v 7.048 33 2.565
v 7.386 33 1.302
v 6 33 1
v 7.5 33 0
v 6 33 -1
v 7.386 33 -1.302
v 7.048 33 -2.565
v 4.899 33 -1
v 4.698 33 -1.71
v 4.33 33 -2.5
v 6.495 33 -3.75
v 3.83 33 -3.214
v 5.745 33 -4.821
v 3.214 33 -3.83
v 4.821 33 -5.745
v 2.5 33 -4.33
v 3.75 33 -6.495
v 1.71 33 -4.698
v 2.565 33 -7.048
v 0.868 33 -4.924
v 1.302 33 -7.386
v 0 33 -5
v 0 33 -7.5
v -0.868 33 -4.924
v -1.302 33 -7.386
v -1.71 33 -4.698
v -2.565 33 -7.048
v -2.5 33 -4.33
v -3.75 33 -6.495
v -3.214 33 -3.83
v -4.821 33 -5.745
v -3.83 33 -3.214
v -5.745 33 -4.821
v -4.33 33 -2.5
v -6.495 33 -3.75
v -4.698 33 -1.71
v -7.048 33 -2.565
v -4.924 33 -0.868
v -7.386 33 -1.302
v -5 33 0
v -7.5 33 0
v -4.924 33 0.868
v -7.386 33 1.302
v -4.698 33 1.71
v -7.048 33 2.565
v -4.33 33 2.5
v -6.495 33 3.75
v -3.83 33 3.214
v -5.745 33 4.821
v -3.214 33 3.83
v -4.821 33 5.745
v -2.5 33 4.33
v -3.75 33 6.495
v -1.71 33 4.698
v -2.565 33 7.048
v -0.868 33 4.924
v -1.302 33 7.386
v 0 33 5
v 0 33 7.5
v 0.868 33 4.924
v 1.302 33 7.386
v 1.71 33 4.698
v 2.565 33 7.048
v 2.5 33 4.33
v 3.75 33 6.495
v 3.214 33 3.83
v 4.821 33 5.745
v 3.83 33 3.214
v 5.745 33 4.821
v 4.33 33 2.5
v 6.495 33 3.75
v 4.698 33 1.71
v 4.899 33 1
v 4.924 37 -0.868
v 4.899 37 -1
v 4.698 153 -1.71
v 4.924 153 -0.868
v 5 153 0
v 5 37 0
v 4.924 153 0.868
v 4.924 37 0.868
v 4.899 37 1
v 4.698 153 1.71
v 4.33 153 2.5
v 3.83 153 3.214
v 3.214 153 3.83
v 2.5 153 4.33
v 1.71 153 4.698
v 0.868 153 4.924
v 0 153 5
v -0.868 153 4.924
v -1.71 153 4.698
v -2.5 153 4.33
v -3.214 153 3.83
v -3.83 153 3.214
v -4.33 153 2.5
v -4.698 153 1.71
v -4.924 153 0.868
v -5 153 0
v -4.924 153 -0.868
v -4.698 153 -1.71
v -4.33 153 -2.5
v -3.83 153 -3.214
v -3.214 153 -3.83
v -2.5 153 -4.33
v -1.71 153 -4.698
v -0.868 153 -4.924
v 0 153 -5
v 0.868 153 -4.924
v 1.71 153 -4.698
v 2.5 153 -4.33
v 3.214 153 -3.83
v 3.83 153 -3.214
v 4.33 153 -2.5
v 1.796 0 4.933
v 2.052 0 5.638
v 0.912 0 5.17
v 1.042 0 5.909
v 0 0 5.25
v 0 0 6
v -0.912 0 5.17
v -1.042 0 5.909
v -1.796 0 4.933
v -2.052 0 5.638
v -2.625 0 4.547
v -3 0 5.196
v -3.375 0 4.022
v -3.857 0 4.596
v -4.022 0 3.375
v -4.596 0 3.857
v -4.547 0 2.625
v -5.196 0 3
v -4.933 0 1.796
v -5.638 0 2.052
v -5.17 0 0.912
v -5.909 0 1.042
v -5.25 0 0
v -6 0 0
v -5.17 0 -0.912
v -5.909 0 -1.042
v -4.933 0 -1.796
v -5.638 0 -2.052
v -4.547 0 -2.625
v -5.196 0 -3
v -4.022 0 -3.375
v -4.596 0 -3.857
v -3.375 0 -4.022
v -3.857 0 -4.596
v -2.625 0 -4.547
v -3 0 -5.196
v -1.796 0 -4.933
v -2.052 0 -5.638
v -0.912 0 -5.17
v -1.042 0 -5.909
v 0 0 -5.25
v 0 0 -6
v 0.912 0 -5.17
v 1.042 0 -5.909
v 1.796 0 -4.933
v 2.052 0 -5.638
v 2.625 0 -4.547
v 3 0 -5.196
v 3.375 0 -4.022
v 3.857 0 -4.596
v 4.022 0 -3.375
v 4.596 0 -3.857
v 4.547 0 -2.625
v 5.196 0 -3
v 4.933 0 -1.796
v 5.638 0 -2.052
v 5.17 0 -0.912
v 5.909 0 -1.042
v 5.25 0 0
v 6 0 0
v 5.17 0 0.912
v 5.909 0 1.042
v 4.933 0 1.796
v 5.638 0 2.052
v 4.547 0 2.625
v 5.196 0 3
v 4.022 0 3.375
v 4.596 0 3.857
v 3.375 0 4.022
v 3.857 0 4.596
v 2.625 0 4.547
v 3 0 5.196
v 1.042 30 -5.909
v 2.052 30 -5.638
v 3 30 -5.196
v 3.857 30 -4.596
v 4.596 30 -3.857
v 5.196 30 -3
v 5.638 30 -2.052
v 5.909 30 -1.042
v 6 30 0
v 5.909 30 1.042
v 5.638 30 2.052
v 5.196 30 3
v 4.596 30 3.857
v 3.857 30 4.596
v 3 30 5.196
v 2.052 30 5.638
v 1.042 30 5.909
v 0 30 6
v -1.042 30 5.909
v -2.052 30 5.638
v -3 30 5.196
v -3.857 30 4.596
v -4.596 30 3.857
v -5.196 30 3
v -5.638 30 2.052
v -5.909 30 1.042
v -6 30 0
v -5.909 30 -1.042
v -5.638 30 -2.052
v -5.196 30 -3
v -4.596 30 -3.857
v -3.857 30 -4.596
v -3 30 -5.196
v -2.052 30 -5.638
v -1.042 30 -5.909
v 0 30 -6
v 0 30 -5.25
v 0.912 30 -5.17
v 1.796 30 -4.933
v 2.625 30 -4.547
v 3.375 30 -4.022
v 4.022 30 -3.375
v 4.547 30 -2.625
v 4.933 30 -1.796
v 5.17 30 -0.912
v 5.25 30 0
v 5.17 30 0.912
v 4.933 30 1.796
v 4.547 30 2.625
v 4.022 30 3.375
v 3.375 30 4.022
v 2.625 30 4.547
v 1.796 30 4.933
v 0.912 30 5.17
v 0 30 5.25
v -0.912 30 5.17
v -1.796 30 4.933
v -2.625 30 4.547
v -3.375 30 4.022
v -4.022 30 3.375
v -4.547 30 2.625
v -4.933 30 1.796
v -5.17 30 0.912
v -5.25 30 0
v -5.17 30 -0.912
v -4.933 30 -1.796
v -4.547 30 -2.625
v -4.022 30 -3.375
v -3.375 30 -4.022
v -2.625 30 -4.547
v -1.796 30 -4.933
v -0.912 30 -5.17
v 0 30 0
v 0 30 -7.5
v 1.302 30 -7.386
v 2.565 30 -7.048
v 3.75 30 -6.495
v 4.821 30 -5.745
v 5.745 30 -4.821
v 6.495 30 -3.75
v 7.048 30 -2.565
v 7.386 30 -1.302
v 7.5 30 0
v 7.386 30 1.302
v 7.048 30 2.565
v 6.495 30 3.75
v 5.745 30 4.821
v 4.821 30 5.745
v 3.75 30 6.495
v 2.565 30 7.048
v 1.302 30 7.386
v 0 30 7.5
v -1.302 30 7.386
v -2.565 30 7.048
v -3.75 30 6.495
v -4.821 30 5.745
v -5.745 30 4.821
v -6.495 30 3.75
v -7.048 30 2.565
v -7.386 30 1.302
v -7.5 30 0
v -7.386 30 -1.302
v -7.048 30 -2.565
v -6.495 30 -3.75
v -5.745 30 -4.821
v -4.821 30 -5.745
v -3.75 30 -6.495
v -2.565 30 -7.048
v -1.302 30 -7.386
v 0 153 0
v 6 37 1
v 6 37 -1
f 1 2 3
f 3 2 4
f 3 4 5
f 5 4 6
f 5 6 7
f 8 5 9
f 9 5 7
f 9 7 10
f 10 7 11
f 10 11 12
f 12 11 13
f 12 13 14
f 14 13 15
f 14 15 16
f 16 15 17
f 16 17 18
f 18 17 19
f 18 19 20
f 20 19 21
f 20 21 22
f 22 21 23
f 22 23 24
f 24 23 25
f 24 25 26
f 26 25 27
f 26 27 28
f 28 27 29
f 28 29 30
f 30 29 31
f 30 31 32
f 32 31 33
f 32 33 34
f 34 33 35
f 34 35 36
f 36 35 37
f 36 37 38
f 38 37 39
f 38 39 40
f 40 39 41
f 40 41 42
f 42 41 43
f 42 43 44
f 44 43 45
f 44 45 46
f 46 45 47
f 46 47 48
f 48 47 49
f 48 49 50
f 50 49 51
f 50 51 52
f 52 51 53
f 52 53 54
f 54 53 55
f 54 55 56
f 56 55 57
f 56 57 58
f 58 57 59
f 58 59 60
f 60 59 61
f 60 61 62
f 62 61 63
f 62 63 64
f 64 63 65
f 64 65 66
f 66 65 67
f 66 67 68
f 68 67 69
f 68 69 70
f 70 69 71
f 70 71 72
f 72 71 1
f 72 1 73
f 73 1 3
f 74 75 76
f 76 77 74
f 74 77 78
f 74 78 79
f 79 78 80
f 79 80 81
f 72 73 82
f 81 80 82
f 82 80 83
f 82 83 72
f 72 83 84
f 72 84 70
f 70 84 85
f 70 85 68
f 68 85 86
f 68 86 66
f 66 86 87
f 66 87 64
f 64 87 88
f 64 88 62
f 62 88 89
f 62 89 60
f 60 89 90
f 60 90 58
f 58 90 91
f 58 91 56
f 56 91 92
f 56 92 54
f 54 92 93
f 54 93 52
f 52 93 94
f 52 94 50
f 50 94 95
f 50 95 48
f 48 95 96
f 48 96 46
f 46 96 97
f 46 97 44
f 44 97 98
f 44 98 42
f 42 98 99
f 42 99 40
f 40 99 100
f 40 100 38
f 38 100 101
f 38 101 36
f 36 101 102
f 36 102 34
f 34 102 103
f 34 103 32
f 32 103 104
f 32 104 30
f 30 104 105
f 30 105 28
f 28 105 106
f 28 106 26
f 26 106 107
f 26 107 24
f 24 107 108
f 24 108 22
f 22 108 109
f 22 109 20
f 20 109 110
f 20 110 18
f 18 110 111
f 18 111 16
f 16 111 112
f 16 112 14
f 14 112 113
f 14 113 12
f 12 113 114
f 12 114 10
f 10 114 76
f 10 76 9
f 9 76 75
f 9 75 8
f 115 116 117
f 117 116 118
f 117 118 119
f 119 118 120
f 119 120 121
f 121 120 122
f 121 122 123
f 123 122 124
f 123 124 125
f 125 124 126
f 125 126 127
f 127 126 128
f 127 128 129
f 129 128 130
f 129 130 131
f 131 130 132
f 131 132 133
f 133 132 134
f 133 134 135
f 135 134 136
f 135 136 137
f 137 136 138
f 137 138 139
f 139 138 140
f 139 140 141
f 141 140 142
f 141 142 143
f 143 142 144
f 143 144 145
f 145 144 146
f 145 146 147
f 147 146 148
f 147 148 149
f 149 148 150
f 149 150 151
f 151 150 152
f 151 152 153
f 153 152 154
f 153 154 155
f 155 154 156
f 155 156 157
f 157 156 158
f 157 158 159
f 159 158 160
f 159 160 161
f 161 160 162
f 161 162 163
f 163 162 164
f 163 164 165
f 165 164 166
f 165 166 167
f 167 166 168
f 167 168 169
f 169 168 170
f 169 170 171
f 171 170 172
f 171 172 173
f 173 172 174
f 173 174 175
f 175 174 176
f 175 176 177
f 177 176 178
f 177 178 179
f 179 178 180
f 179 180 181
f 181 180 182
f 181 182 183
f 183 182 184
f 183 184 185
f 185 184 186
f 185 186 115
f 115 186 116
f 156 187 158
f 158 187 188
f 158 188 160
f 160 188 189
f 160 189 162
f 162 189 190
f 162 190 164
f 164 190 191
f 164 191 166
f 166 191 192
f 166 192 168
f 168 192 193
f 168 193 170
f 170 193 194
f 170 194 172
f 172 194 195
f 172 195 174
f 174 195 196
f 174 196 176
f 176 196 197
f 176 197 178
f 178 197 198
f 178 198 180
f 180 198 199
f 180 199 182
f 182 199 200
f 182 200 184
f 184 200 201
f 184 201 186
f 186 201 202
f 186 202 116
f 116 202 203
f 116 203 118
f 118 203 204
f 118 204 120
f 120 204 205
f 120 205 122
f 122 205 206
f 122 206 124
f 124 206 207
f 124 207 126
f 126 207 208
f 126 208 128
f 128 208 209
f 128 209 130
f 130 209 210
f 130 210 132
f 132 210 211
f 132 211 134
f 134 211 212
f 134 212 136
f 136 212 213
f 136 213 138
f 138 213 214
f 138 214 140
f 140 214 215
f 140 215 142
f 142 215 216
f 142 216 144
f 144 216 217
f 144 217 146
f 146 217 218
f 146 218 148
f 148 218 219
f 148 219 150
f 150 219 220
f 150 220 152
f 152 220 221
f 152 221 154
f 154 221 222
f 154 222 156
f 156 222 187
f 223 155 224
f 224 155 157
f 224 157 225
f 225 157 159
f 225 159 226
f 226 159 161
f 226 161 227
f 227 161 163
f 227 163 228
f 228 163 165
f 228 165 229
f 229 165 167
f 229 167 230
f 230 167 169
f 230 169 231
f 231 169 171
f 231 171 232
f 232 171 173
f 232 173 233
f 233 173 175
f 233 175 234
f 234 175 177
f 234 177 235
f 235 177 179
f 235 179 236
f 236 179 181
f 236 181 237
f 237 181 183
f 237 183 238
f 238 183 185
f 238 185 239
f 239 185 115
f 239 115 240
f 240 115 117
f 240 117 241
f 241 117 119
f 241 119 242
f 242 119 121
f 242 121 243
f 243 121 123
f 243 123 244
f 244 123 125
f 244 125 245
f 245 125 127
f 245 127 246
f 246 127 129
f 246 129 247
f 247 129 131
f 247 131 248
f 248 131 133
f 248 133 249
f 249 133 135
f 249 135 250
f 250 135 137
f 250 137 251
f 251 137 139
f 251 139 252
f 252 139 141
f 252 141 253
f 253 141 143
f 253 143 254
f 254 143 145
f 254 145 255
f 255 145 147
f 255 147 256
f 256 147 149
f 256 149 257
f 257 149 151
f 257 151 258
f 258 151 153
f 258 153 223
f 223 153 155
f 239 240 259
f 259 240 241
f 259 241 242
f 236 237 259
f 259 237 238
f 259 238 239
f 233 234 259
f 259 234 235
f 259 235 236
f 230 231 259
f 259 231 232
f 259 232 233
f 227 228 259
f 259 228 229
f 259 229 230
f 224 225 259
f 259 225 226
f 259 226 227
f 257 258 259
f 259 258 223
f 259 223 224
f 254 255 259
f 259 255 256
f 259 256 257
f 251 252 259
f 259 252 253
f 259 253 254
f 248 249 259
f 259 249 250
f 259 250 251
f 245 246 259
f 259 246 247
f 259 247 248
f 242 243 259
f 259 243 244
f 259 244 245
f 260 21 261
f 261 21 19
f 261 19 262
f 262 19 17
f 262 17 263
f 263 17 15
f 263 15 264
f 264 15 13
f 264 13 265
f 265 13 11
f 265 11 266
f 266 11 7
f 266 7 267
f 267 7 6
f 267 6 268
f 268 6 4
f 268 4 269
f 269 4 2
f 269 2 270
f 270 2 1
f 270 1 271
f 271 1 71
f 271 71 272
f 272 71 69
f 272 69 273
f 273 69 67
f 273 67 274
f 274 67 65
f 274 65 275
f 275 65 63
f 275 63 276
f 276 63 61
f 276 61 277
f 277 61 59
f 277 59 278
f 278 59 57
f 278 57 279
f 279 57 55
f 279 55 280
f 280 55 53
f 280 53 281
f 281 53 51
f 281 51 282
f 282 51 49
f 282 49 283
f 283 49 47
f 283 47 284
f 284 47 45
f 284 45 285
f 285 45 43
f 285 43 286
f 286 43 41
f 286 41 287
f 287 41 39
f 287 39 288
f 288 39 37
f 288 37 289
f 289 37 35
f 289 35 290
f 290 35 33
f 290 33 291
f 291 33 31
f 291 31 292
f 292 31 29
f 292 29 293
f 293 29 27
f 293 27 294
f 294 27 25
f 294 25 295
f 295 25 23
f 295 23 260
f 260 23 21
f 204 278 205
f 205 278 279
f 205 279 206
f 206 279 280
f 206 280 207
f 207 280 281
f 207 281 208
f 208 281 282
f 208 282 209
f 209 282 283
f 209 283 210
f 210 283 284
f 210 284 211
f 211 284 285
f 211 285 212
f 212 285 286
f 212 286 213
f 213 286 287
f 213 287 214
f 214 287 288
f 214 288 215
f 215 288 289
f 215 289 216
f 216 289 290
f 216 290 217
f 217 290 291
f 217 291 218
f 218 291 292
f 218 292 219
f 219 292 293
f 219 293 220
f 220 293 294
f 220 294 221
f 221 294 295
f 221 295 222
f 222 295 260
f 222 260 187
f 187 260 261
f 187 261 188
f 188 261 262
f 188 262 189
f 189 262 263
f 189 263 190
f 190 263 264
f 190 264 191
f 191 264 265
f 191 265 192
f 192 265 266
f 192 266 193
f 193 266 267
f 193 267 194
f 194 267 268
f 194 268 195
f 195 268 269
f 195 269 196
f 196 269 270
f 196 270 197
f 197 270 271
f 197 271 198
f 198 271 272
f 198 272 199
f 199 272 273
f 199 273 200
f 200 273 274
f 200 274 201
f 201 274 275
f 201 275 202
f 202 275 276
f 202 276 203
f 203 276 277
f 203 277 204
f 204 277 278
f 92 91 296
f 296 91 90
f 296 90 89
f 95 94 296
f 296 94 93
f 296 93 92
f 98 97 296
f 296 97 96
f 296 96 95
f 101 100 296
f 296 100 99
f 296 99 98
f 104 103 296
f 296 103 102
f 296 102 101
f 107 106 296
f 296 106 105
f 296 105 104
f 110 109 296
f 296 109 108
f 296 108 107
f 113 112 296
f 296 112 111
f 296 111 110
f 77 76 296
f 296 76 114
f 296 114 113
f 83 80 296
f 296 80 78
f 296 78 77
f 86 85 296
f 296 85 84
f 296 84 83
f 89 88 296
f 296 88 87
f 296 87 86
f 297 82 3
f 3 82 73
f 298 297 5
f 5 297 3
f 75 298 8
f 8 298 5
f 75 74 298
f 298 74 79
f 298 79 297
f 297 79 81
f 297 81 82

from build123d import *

# Parameters (mm, degrees)
SKETCH_1_R      = 6
SKETCH_1_R_2    = 5.25
EXTRUDE_2_DEPTH = 30
SKETCH_2_R      = 7.5
EXTRUDE_3_DEPTH = 3
SKETCH_3_R      = 5
EXTRUDE_4_DEPTH = 120
EXTRUDE_6_DEPTH = 4


with BuildPart() as part:
    # 草图1 → 凸台-拉伸2 (new body)
    with BuildSketch(Plane(origin=(0, 0, 0), x_dir=(1, 0, 0), z_dir=(0, 1, 0))):
        with Locations(Location((0, 0, 0), (0, 0, 270))):
            Circle(SKETCH_1_R)
        with Locations(Location((0, 0, 0), (0, 0, 270))):
            Circle(SKETCH_1_R_2, mode=Mode.SUBTRACT)
    extrude(amount=EXTRUDE_2_DEPTH)

    # 草图2 → 凸台-拉伸3 (add)
    with BuildSketch(Plane(origin=(0, 30, 0), x_dir=(1, 0, 0), z_dir=(0, 1, 0))):
        with Locations(Location((0, 0, 0), (0, 0, 270))):
            Circle(SKETCH_2_R)
    extrude(amount=EXTRUDE_3_DEPTH)

    # 草图3 → 凸台-拉伸4 (add)
    with BuildSketch(Plane(origin=(0, 33, 0), x_dir=(1, 0, 0), z_dir=(0, 1, 0))):
        with Locations(Location((0, 0, 0), (0, 0, 270))):
            Circle(SKETCH_3_R)
    extrude(amount=EXTRUDE_4_DEPTH)

    # 草图4 → 凸台-拉伸6 (add)
    with BuildSketch(Plane(origin=(0, 33, 0), x_dir=(1, 0, 0), z_dir=(0, 1, 0))):
        with BuildLine():
            Line((6, 1), (4.898979486, 1))
            ThreePointArc((4.898979486, 1), (4.974680765, 0.50254481), (5, 0))
            Line((5, 0), (6, 0))
            Line((6, 0), (6, 1))
        make_face()
        with BuildLine():
            ThreePointArc((5, 0), (4.974680765, -0.50254481), (4.898979486, -1))
            Line((4.898979486, -1), (6, -1))
            Line((6, -1), (6, 0))
            Line((6, 0), (5, 0))
        make_face()
    extrude(amount=EXTRUDE_6_DEPTH)


solid = part.part
